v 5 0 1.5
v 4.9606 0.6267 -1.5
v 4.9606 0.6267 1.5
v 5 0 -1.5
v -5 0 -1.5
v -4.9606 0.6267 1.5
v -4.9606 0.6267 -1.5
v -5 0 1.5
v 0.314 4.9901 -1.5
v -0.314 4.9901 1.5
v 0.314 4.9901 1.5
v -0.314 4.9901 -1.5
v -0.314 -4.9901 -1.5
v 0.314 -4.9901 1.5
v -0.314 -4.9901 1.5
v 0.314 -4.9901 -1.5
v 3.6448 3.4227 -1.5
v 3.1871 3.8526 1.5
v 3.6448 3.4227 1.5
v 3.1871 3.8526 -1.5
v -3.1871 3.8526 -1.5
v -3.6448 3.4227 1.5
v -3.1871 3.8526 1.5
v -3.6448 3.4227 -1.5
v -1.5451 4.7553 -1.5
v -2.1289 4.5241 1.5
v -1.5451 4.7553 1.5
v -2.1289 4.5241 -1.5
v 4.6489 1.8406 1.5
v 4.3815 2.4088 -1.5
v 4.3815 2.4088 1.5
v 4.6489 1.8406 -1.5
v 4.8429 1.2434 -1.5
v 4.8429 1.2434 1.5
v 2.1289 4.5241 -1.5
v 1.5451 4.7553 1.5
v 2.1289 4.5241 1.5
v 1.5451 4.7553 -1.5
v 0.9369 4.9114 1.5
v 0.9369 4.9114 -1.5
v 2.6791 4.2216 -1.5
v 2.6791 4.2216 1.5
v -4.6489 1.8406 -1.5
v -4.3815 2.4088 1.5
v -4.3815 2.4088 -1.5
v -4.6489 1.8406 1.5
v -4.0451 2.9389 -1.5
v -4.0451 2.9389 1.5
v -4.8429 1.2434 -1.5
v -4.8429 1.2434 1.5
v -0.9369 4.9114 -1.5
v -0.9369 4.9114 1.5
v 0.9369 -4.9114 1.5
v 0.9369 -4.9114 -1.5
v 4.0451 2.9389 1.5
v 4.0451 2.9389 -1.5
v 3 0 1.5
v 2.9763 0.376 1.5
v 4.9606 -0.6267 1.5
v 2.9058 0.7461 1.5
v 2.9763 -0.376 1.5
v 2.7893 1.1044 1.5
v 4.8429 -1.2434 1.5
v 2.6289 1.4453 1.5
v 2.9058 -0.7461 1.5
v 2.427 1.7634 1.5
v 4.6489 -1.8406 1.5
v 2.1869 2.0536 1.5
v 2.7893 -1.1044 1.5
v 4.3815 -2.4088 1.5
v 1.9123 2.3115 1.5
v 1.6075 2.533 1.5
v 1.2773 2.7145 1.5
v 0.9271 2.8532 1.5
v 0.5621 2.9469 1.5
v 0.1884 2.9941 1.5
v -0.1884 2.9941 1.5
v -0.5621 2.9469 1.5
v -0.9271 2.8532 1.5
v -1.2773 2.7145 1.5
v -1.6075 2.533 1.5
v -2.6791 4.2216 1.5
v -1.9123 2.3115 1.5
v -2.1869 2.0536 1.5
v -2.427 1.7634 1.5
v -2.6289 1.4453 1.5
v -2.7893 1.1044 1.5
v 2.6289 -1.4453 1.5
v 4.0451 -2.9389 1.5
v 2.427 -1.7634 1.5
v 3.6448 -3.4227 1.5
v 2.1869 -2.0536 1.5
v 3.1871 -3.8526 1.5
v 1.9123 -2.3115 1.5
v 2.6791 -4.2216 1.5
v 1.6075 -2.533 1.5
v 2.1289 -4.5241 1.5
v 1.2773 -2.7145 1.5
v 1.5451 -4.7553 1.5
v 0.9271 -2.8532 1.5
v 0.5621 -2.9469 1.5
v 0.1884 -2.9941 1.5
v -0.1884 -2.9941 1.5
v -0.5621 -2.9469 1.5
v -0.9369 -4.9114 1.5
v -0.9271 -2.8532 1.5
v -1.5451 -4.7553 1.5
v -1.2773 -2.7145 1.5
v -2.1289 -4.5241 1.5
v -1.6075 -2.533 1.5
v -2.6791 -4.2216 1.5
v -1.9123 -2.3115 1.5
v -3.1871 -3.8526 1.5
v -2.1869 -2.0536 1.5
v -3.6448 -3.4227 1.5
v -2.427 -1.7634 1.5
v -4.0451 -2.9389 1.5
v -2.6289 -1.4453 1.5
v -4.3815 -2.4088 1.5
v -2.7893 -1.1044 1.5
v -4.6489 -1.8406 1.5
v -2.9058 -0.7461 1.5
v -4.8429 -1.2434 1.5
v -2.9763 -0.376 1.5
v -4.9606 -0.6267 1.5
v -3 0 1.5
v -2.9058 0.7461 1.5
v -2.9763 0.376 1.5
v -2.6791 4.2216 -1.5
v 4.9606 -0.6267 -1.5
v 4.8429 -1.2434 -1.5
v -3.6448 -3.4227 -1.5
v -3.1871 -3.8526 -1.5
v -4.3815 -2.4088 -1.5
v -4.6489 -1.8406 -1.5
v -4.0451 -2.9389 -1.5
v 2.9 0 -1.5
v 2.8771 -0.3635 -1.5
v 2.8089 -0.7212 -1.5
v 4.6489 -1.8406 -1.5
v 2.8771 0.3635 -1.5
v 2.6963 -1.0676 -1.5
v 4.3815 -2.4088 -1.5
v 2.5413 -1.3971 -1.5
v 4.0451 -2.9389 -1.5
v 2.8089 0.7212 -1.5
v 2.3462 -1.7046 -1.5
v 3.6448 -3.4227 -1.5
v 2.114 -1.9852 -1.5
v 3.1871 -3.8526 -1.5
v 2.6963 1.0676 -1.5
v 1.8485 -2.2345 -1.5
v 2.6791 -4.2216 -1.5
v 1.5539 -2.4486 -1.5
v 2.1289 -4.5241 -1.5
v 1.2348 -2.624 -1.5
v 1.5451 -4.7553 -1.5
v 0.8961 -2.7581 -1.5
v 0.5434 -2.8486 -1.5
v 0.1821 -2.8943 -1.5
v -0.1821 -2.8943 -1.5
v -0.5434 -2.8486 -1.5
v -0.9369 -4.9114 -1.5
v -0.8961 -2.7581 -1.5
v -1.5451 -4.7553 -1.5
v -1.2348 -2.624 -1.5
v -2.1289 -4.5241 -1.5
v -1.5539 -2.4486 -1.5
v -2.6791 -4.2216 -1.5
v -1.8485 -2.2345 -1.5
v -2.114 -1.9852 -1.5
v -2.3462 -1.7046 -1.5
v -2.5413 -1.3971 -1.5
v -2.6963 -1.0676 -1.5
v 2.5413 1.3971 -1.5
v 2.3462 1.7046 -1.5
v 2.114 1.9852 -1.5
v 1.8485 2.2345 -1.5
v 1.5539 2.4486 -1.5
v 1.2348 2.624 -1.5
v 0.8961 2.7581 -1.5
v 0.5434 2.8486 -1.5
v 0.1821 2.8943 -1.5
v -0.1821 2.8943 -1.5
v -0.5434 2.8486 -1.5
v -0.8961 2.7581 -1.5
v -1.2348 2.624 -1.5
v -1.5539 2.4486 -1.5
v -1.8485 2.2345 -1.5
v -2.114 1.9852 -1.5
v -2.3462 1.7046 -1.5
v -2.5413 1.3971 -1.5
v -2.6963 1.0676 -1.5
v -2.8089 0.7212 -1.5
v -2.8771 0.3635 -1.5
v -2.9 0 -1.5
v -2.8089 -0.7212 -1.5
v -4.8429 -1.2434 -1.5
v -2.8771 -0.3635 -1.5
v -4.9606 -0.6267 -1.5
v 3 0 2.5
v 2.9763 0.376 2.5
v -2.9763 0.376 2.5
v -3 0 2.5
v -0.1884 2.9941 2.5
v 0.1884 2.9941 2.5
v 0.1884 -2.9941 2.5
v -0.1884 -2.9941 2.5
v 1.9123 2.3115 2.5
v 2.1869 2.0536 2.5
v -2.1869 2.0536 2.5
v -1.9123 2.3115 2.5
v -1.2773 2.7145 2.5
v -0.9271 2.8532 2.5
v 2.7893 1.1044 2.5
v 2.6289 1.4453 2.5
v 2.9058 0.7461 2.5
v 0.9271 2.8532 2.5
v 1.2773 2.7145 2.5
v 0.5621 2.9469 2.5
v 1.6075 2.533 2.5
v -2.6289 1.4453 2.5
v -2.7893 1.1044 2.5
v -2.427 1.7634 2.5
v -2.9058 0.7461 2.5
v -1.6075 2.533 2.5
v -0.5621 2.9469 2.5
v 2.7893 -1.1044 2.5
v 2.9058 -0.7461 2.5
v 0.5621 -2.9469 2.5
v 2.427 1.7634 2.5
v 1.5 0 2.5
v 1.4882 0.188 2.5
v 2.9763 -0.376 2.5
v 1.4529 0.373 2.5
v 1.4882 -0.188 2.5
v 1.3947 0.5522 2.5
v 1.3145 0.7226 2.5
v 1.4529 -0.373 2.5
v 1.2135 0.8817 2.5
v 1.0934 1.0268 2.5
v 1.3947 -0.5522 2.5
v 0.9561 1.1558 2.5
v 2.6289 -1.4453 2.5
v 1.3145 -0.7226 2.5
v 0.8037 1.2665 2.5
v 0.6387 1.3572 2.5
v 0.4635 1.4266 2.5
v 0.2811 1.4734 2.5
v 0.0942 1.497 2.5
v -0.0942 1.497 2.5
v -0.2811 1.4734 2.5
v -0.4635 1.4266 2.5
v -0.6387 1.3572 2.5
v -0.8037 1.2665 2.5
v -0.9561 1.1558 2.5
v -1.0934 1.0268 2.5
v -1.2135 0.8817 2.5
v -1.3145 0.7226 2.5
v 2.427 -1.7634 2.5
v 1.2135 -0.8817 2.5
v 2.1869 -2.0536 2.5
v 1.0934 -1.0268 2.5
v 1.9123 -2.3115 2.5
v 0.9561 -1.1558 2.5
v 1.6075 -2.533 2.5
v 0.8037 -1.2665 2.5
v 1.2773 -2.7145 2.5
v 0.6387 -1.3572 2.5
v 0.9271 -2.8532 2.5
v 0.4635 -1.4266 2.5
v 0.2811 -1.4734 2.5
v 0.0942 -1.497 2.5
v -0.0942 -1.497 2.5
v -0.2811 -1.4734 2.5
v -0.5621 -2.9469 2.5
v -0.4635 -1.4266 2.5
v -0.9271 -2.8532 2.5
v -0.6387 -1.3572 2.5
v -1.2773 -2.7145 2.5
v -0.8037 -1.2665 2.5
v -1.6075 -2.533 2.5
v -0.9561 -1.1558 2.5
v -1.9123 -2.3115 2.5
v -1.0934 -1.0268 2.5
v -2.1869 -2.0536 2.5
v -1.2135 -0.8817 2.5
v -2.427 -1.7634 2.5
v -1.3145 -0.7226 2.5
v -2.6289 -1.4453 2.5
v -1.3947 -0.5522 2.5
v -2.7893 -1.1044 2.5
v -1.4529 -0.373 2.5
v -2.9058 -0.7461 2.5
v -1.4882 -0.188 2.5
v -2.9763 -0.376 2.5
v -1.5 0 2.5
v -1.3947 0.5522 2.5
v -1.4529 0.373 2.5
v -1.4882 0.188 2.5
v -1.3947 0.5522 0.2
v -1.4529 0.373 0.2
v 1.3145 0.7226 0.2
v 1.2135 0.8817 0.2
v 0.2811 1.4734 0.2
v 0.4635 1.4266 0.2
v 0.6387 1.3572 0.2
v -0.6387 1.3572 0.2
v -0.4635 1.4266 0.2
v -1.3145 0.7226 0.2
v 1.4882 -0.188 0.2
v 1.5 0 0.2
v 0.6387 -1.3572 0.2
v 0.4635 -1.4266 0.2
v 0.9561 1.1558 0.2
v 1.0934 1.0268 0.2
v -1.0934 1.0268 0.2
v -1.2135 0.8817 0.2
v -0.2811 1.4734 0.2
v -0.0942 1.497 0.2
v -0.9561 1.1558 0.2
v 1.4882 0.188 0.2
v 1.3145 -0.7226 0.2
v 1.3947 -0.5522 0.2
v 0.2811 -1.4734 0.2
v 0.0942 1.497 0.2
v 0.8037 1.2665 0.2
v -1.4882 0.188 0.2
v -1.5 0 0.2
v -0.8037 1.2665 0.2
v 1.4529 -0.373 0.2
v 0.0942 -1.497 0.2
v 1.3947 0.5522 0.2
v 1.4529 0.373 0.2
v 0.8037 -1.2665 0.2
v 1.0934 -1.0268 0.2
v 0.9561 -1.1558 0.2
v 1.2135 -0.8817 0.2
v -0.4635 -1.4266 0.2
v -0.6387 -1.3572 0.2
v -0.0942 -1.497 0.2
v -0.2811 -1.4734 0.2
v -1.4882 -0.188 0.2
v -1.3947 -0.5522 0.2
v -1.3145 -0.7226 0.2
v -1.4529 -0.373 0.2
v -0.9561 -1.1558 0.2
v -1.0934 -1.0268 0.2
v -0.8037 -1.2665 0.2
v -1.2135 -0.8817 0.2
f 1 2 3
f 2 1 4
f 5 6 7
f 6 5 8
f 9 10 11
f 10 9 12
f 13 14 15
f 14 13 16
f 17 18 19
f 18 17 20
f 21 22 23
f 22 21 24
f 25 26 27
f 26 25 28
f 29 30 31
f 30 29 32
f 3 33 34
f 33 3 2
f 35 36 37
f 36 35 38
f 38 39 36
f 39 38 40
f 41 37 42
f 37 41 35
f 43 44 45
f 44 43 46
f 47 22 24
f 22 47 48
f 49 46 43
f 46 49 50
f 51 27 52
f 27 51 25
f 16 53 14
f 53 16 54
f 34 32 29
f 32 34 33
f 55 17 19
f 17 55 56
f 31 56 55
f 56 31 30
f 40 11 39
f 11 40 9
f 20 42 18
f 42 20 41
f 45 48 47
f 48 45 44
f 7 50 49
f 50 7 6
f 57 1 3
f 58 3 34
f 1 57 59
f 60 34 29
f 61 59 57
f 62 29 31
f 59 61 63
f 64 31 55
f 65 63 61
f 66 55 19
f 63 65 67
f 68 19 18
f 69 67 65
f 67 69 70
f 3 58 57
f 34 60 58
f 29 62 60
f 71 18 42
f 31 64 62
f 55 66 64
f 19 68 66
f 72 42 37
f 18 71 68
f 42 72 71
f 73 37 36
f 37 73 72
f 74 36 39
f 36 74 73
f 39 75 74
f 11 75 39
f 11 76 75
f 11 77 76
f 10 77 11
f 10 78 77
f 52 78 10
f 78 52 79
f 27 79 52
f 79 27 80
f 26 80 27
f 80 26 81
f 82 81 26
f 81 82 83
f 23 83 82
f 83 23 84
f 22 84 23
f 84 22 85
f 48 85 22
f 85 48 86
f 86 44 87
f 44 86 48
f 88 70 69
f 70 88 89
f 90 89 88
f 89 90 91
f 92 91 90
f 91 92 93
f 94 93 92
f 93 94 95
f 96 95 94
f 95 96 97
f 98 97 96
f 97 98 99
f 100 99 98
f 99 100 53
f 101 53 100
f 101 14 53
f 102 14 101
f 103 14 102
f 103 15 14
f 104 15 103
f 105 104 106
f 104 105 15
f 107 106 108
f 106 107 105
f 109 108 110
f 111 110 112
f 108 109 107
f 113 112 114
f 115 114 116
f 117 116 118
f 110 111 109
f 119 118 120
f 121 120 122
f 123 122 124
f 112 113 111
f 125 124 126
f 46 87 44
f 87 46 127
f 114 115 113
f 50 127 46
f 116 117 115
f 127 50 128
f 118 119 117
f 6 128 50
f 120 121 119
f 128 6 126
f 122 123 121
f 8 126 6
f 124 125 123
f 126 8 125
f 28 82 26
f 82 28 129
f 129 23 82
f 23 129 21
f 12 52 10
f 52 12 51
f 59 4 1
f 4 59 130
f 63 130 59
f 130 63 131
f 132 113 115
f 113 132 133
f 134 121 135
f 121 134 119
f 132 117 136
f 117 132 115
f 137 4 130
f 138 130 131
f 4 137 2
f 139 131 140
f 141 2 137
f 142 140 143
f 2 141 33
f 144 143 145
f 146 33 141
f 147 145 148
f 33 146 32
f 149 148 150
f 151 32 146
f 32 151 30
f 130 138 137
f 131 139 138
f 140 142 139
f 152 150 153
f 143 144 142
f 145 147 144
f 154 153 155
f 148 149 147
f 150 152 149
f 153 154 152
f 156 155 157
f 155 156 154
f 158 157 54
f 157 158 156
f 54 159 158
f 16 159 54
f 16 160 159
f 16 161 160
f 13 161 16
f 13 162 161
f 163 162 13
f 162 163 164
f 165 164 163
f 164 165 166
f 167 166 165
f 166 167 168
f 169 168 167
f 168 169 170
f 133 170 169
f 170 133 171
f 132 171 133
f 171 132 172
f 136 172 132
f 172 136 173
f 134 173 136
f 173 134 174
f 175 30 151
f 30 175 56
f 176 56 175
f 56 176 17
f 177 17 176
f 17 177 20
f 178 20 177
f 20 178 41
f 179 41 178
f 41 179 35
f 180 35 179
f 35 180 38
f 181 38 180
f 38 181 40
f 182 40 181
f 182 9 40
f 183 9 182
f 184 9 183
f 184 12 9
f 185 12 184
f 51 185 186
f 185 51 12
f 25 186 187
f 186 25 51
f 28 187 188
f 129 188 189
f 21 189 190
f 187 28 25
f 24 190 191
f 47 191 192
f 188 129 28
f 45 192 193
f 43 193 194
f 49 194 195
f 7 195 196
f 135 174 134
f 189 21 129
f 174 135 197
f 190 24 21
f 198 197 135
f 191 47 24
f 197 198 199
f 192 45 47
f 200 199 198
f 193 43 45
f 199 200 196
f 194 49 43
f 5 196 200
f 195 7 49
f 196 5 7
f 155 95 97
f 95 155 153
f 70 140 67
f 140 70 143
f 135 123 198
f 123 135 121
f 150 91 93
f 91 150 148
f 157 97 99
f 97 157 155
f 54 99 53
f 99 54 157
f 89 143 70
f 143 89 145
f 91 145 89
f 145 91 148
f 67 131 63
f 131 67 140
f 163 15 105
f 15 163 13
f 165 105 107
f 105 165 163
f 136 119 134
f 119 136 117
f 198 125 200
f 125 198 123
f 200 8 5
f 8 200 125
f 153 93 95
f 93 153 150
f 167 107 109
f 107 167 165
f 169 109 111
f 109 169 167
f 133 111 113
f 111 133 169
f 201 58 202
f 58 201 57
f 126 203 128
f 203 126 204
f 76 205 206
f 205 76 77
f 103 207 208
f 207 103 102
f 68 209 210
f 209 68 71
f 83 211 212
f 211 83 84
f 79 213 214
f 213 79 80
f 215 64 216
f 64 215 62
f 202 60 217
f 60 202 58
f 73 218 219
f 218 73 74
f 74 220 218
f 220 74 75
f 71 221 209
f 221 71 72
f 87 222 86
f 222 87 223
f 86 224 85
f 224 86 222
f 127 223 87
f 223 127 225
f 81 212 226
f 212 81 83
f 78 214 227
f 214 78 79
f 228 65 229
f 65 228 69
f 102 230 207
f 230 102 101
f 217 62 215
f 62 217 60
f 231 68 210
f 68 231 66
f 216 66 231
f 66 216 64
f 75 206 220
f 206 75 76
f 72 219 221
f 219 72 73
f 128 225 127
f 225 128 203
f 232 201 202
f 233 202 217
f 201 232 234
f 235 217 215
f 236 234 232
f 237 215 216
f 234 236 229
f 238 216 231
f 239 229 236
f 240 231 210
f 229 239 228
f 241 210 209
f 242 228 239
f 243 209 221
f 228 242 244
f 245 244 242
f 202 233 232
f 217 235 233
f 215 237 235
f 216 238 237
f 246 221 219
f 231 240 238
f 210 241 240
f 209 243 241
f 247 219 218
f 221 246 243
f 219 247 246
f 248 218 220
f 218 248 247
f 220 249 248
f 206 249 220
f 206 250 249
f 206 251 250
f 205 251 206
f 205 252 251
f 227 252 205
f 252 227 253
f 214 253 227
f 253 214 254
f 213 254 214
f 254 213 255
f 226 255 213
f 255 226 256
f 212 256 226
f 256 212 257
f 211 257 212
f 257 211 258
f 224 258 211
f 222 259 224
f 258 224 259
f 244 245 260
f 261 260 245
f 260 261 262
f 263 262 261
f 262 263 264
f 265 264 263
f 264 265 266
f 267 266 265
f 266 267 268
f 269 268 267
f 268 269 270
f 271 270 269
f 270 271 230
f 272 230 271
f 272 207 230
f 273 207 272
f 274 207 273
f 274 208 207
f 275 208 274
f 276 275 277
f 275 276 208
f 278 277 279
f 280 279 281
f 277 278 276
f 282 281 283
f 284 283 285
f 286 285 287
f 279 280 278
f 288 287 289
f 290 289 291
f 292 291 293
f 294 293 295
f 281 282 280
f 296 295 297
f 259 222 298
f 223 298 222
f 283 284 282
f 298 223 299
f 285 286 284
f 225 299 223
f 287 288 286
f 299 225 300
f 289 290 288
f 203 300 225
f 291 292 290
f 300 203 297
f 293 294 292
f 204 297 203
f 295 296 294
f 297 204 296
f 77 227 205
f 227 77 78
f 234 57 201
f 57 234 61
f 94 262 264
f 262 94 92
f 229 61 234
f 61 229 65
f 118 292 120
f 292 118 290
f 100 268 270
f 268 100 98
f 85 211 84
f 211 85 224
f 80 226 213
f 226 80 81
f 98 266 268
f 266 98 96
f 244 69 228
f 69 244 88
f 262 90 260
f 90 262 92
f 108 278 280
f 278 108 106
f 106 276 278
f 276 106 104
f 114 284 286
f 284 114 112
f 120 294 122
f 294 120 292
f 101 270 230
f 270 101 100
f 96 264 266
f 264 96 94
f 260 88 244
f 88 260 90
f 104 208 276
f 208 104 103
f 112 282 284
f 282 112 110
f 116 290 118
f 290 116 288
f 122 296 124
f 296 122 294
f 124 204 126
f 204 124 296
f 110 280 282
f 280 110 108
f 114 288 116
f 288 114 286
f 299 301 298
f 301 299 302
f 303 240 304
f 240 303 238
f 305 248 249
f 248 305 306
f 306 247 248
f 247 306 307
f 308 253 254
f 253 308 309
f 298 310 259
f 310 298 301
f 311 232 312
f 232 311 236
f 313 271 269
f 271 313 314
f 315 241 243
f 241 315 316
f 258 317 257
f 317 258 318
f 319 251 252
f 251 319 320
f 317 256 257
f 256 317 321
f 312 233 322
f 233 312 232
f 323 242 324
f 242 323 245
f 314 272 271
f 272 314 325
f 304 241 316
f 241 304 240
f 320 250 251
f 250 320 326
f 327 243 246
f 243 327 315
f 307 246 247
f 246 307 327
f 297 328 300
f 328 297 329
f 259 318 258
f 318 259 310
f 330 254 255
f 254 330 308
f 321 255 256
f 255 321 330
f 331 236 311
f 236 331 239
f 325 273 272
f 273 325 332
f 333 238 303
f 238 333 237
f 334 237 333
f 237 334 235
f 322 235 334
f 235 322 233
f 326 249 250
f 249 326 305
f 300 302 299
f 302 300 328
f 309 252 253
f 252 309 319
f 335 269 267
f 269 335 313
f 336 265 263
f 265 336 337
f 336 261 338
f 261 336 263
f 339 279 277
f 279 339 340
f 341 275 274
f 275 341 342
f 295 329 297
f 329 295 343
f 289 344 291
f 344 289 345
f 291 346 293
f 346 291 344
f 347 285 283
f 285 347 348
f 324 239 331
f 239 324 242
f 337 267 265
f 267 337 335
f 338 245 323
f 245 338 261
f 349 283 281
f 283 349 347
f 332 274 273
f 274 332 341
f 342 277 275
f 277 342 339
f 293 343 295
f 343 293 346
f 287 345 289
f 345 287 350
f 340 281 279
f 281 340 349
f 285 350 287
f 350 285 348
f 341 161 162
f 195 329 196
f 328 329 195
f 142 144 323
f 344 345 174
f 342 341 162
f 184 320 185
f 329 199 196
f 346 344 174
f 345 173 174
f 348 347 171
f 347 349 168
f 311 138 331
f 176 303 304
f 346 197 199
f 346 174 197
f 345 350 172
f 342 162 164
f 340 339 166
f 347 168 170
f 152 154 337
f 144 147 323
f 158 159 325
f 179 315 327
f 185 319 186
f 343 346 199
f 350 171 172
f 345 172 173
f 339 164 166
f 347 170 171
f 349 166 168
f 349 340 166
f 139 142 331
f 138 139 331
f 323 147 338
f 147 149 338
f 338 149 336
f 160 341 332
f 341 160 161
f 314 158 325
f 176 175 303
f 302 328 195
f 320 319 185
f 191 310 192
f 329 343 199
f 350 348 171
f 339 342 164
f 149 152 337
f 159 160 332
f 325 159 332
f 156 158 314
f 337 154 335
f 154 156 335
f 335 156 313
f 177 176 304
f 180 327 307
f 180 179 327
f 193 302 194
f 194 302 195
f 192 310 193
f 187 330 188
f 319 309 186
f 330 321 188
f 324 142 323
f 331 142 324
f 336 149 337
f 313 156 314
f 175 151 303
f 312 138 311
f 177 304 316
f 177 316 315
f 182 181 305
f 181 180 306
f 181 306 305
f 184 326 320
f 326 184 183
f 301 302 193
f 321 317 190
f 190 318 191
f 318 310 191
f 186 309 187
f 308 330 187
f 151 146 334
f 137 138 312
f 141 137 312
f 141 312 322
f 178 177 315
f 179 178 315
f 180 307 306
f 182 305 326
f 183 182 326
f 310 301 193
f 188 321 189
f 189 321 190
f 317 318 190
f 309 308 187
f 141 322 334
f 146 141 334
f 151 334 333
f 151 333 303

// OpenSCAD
$fn = 50;


difference() {
	union() {
		translate(v = [0, 0, -1.5000000000]) {
			rotate(a = [0, 0, 0]) {
				cylinder(h = 3, r = 5.0000000000);
			}
		}
		translate(v = [0, 0, -1.5000000000]) {
			rotate(a = [0, 0, 0]) {
				cylinder(h = 4, r = 3.0000000000);
			}
		}
	}
	union() {
		translate(v = [0, 0, -125.0000000000]) {
			rotate(a = [0, 0, 0]) {
				cylinder(h = 250, r = 1.5000000000);
			}
		}
		#translate(v = [0, 0, 0.2000000000]) {
			rotate(a = [0, 180, 0]) {
				cylinder(h = 1.7000000000, r1 = 1.5000000000, r2 = 2.9000000000);
			}
		}
		#translate(v = [0, 0, 2.5000000000]) {
			rotate(a = [0, 180, 0]) {
				cylinder(h = 4, r = 1.5000000000);
			}
		}
	}
}
